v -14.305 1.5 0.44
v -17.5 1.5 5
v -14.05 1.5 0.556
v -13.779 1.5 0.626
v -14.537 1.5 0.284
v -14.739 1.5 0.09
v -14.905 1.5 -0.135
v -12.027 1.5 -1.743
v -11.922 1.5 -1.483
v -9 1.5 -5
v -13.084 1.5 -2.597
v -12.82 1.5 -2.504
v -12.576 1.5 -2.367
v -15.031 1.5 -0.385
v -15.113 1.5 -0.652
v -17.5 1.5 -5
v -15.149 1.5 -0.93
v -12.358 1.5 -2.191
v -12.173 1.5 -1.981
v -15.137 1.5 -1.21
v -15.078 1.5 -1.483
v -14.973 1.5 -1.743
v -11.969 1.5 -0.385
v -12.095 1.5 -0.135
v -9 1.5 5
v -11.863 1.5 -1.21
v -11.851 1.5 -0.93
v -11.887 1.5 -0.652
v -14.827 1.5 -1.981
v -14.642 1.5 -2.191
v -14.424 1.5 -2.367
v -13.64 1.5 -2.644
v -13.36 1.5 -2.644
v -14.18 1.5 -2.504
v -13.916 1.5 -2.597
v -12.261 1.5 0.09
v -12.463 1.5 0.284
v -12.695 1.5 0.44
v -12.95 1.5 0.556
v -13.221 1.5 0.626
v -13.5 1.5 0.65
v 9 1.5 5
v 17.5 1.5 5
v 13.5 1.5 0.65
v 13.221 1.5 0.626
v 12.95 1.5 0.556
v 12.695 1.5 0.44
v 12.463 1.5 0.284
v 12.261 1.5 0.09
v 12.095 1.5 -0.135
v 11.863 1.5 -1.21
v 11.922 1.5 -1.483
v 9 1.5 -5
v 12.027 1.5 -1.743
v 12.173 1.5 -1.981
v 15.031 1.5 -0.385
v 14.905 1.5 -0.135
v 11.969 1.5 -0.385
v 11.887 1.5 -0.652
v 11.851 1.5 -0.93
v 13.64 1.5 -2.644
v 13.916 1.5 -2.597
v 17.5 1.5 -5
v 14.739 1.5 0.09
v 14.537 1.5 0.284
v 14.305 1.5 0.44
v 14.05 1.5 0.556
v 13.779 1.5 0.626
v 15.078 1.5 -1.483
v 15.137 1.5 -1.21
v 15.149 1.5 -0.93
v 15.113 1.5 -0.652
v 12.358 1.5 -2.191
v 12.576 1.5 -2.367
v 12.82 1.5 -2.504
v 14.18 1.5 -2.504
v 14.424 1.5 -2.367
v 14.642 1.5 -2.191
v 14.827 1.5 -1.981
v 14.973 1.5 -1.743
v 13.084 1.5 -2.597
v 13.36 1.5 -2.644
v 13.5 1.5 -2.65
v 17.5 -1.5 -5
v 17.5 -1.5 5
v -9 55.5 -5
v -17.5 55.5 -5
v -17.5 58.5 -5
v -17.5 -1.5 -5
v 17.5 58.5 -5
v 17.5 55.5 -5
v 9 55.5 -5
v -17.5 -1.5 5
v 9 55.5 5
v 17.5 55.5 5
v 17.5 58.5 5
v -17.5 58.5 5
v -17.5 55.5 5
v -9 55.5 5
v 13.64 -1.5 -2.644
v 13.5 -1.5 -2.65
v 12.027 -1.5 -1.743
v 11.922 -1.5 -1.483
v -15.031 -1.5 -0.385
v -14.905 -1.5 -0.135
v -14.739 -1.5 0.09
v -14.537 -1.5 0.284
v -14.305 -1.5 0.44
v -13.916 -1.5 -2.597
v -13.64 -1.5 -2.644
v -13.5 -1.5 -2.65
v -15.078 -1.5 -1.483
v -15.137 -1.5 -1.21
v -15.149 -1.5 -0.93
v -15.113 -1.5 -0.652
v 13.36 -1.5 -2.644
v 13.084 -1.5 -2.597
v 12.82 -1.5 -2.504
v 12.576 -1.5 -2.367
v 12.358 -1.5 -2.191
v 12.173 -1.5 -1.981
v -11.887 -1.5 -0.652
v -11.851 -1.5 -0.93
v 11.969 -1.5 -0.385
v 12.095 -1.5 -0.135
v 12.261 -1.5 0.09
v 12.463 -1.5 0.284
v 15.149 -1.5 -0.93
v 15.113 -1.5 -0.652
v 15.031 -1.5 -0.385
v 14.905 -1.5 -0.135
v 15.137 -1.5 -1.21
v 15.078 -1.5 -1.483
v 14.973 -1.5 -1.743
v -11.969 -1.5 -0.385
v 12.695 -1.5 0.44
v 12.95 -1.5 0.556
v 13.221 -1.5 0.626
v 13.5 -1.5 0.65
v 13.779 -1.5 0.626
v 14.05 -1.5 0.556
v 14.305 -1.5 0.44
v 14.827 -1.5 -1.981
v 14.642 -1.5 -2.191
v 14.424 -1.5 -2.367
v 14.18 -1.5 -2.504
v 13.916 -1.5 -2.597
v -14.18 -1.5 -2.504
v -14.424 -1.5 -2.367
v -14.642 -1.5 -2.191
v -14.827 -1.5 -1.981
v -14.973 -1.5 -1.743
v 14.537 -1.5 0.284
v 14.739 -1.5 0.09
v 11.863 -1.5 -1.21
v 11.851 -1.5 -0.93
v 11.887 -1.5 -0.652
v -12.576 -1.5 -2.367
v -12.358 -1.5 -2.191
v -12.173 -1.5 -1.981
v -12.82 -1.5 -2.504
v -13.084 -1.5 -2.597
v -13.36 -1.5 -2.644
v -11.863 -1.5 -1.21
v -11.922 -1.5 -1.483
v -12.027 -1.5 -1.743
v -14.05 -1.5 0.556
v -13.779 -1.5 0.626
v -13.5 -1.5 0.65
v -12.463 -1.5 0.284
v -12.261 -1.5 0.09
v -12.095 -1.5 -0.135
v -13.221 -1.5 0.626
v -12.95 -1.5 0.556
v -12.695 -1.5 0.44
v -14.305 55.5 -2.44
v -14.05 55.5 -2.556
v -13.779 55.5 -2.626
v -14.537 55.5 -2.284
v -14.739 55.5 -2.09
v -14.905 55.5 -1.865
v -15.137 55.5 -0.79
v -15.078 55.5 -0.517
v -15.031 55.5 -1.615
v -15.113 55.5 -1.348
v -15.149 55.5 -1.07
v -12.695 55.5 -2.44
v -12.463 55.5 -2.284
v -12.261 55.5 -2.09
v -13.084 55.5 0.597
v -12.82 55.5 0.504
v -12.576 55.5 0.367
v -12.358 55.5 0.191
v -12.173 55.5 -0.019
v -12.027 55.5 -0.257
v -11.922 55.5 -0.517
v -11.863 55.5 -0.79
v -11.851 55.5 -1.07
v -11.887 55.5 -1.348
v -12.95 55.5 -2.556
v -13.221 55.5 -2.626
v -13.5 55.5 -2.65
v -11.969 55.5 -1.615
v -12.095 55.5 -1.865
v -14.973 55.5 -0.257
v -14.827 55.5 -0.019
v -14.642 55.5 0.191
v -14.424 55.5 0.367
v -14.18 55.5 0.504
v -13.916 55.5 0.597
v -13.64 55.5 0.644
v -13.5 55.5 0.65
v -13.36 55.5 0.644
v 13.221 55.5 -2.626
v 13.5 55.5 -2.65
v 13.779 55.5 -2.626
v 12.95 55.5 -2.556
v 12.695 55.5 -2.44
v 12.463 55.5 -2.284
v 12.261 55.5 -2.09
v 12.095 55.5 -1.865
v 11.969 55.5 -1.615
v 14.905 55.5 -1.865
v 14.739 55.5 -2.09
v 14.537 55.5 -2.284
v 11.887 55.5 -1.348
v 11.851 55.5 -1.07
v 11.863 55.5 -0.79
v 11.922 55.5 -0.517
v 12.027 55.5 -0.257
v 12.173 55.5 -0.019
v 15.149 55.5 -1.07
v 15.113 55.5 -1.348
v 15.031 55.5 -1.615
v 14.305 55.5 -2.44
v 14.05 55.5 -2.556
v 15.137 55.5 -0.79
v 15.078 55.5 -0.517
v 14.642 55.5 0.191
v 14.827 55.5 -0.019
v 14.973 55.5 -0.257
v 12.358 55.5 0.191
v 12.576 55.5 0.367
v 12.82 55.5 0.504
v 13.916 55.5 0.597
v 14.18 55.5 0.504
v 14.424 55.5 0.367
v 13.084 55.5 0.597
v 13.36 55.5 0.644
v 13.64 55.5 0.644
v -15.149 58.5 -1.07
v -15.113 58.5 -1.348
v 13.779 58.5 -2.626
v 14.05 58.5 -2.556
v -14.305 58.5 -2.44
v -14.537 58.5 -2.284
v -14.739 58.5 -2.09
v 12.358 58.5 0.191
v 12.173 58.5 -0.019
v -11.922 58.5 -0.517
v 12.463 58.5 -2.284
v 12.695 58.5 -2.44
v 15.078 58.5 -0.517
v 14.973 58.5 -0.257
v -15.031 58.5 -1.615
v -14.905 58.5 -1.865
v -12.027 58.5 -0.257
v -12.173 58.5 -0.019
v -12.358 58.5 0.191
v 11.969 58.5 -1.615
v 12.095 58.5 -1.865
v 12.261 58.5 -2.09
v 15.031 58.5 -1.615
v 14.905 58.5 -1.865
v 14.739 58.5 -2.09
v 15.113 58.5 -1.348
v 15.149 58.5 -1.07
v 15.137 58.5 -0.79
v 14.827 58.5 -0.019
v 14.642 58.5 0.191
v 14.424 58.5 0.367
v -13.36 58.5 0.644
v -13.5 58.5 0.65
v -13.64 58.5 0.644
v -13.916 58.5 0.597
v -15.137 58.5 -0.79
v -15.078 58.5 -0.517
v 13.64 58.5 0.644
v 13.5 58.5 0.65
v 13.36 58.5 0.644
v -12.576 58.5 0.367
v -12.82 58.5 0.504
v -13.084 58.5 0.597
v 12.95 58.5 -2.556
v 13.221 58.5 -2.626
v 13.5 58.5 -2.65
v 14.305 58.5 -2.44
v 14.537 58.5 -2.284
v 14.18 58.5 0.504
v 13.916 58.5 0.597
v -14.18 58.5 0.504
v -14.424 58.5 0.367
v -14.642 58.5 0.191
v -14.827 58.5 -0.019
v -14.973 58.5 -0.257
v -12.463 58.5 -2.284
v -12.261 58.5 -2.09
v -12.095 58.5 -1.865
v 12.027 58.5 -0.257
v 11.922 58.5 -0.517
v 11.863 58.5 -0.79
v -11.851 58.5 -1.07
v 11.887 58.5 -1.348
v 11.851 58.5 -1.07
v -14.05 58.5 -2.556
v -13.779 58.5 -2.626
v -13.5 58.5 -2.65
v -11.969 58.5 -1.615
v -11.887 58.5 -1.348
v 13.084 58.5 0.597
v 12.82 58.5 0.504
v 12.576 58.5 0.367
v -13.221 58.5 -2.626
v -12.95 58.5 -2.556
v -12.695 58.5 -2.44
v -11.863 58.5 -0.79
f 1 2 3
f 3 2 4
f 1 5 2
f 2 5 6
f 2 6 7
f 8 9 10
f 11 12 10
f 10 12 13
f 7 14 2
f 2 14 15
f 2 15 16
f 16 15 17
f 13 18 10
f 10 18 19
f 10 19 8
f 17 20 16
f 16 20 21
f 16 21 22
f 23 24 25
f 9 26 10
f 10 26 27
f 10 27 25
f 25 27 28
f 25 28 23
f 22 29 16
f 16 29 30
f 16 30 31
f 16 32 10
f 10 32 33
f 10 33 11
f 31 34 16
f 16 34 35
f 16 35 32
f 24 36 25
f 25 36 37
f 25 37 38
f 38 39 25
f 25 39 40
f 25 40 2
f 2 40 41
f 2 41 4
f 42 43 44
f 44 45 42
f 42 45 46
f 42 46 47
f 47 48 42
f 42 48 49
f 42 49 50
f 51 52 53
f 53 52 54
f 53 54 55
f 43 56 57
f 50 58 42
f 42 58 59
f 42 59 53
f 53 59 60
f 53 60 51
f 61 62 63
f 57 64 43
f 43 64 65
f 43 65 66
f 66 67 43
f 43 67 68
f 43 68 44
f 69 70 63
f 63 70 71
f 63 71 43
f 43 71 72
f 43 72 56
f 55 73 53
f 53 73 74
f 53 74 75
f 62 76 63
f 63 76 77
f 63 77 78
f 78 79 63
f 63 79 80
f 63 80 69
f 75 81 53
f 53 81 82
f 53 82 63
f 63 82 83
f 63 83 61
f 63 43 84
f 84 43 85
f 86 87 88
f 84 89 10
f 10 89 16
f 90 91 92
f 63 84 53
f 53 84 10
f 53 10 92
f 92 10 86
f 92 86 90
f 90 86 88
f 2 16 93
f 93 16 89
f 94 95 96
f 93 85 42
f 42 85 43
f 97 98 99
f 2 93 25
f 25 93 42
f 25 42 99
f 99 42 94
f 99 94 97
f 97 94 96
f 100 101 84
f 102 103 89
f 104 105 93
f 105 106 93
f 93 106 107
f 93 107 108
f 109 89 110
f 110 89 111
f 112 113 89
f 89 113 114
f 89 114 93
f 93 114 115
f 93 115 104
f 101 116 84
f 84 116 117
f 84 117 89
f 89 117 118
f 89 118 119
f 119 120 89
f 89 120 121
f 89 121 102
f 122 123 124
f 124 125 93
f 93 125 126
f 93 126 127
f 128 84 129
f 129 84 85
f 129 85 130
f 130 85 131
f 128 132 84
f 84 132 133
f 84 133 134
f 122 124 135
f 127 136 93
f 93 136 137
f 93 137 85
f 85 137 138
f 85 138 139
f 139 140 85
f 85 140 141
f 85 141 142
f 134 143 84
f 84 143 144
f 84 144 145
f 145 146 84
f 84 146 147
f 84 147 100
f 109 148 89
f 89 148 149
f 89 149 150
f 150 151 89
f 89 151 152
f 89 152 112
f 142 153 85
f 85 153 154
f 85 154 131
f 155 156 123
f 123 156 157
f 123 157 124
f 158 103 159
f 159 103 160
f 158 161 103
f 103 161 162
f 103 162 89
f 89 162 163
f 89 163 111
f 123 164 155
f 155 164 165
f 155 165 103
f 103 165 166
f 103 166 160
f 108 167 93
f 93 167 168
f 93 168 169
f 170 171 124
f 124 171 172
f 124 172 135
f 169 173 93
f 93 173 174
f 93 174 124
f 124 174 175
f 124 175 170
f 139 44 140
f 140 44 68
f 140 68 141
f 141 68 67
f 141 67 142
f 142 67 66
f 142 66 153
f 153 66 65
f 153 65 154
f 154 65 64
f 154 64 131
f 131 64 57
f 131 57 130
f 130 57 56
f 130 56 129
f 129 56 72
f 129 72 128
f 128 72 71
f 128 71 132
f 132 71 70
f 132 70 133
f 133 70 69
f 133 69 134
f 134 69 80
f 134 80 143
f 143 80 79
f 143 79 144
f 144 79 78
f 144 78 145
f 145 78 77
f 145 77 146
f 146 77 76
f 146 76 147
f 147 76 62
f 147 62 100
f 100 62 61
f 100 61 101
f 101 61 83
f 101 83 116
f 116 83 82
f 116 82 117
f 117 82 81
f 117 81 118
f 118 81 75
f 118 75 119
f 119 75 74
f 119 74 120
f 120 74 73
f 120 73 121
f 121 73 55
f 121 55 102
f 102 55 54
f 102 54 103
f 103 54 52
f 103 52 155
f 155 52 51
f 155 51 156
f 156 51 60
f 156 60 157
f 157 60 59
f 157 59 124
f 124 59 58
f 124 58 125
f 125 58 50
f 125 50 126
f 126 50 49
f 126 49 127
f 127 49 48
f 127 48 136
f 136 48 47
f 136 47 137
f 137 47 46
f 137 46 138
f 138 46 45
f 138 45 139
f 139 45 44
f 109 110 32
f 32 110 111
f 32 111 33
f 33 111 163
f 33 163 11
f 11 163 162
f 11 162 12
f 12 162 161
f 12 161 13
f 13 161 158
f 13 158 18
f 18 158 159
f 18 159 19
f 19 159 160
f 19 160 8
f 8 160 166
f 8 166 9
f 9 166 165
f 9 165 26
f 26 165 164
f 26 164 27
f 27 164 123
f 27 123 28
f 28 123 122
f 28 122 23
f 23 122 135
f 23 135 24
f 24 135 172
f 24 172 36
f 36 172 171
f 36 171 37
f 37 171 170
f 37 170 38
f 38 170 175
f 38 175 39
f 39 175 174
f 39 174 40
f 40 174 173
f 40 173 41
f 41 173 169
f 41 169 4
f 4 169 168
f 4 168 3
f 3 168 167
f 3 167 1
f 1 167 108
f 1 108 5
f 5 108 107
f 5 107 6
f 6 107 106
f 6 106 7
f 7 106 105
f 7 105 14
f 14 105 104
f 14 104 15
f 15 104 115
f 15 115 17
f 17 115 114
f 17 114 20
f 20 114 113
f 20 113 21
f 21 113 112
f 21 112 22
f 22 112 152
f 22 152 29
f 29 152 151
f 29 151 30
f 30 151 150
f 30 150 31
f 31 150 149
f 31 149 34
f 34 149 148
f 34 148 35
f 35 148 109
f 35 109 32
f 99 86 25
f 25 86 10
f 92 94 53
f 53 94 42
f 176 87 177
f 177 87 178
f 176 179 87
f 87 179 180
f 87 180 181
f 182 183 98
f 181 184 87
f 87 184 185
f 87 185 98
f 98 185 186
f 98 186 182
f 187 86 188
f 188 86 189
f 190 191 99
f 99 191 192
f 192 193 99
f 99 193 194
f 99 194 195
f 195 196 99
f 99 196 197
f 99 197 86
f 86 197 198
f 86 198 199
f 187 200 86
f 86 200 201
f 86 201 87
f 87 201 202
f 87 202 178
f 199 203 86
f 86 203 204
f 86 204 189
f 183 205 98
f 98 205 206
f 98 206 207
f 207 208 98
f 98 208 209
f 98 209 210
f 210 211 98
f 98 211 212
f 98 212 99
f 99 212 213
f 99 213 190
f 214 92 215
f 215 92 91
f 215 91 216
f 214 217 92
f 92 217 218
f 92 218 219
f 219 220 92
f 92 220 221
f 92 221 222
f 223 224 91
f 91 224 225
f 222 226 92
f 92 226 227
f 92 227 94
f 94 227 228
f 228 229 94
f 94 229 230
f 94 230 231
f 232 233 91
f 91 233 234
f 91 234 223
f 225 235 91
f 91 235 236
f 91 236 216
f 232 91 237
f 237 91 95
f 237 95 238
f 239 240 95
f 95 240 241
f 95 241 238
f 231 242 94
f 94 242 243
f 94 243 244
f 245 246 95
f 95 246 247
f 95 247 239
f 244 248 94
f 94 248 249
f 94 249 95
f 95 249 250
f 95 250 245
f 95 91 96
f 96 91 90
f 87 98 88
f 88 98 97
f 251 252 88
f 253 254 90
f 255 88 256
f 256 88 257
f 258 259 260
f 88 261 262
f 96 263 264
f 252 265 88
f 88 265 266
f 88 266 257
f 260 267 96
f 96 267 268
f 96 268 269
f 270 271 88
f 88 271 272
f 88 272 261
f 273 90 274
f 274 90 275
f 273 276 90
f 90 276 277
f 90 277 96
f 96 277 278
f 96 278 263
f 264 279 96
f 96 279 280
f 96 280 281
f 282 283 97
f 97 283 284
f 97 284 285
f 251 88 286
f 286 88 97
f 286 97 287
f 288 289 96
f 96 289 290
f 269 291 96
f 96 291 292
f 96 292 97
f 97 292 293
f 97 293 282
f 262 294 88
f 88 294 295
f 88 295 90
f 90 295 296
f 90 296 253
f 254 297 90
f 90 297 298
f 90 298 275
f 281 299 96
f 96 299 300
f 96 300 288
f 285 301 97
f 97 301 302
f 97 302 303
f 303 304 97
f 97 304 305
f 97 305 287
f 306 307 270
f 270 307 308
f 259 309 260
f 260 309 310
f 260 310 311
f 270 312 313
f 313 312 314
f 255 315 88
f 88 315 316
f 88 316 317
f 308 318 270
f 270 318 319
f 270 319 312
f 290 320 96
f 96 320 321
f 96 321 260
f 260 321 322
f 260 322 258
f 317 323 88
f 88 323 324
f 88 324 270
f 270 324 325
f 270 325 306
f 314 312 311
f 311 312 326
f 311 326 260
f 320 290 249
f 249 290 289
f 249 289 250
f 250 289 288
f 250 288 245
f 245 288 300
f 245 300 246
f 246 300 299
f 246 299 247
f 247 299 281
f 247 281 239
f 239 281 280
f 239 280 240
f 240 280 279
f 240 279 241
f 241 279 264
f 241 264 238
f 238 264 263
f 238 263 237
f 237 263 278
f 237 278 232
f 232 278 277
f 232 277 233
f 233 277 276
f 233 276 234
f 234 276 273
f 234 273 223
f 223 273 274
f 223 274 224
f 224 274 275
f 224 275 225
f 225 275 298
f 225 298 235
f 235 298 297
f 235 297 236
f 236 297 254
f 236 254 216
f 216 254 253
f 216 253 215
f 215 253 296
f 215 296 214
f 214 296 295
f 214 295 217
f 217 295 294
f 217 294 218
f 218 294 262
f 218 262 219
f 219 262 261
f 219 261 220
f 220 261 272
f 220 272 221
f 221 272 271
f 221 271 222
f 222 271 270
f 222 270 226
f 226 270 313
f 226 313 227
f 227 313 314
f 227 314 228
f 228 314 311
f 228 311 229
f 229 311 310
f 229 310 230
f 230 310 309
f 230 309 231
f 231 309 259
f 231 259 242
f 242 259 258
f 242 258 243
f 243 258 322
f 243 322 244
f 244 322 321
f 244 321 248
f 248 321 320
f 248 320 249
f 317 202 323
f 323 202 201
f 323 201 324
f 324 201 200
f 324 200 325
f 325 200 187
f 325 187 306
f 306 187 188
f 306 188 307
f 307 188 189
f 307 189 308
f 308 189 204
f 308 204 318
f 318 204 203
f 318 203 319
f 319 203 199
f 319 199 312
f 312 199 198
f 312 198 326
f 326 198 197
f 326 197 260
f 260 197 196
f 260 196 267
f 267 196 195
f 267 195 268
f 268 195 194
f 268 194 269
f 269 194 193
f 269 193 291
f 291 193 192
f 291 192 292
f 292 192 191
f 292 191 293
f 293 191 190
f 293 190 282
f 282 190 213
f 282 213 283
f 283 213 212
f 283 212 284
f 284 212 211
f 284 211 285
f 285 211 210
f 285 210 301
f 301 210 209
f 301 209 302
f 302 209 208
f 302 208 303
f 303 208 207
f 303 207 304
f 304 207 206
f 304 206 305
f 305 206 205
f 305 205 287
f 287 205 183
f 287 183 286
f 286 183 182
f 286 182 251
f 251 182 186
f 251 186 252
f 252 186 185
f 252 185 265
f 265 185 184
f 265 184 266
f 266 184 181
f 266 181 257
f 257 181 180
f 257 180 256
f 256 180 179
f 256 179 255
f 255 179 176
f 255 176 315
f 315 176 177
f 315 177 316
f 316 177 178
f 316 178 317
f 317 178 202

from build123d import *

# Parameters (mm, degrees)
SKETCH1_W           = 35
SKETCH1_H           = 10
BOSS_EXTRUDE1_DEPTH = 1.5
SKETCH2_R           = 1.65
CUT_EXTRUDE1_DEPTH  = 3
SKETCH3_W           = 18
SKETCH3_H           = 10
BOSS_EXTRUDE2_DEPTH = 54


with BuildPart() as part:
    # Sketch1 → Boss-Extrude1 (new body, symmetric)
    with BuildSketch(Plane(origin=(0, 0, 0), x_dir=(1, 0, 0), z_dir=(0, 1, 0))):
        Rectangle(SKETCH1_W, SKETCH1_H)
    boss_extrude1 = extrude(amount=BOSS_EXTRUDE1_DEPTH, both=True)

    # Sketch2 → Cut-Extrude1 (cut)
    with BuildSketch(Plane(origin=(0, 1.5, 0), x_dir=(1, 0, 0), z_dir=(0, 1, 0))):
        with Locations((-13.5, 1)):
            Circle(SKETCH2_R)
        with Locations((13.5, 1)):
            Circle(SKETCH2_R)
    cut_extrude1 = extrude(amount=-CUT_EXTRUDE1_DEPTH, mode=Mode.SUBTRACT)

    # Sketch3 → Boss-Extrude2 (add)
    with BuildSketch(Plane(origin=(0, 1.5, 0), x_dir=(1, 0, 0), z_dir=(0, 1, 0))):
        Rectangle(SKETCH3_W, SKETCH3_H)
    extrude(amount=BOSS_EXTRUDE2_DEPTH)

    # Mirror1: Boss-Extrude1, Cut-Extrude1 across plane
    add(boss_extrude1.mirror(Plane.ZX.offset(28.5)))
    add(cut_extrude1.mirror(Plane.ZX.offset(28.5)), mode=Mode.SUBTRACT)


solid = part.part
